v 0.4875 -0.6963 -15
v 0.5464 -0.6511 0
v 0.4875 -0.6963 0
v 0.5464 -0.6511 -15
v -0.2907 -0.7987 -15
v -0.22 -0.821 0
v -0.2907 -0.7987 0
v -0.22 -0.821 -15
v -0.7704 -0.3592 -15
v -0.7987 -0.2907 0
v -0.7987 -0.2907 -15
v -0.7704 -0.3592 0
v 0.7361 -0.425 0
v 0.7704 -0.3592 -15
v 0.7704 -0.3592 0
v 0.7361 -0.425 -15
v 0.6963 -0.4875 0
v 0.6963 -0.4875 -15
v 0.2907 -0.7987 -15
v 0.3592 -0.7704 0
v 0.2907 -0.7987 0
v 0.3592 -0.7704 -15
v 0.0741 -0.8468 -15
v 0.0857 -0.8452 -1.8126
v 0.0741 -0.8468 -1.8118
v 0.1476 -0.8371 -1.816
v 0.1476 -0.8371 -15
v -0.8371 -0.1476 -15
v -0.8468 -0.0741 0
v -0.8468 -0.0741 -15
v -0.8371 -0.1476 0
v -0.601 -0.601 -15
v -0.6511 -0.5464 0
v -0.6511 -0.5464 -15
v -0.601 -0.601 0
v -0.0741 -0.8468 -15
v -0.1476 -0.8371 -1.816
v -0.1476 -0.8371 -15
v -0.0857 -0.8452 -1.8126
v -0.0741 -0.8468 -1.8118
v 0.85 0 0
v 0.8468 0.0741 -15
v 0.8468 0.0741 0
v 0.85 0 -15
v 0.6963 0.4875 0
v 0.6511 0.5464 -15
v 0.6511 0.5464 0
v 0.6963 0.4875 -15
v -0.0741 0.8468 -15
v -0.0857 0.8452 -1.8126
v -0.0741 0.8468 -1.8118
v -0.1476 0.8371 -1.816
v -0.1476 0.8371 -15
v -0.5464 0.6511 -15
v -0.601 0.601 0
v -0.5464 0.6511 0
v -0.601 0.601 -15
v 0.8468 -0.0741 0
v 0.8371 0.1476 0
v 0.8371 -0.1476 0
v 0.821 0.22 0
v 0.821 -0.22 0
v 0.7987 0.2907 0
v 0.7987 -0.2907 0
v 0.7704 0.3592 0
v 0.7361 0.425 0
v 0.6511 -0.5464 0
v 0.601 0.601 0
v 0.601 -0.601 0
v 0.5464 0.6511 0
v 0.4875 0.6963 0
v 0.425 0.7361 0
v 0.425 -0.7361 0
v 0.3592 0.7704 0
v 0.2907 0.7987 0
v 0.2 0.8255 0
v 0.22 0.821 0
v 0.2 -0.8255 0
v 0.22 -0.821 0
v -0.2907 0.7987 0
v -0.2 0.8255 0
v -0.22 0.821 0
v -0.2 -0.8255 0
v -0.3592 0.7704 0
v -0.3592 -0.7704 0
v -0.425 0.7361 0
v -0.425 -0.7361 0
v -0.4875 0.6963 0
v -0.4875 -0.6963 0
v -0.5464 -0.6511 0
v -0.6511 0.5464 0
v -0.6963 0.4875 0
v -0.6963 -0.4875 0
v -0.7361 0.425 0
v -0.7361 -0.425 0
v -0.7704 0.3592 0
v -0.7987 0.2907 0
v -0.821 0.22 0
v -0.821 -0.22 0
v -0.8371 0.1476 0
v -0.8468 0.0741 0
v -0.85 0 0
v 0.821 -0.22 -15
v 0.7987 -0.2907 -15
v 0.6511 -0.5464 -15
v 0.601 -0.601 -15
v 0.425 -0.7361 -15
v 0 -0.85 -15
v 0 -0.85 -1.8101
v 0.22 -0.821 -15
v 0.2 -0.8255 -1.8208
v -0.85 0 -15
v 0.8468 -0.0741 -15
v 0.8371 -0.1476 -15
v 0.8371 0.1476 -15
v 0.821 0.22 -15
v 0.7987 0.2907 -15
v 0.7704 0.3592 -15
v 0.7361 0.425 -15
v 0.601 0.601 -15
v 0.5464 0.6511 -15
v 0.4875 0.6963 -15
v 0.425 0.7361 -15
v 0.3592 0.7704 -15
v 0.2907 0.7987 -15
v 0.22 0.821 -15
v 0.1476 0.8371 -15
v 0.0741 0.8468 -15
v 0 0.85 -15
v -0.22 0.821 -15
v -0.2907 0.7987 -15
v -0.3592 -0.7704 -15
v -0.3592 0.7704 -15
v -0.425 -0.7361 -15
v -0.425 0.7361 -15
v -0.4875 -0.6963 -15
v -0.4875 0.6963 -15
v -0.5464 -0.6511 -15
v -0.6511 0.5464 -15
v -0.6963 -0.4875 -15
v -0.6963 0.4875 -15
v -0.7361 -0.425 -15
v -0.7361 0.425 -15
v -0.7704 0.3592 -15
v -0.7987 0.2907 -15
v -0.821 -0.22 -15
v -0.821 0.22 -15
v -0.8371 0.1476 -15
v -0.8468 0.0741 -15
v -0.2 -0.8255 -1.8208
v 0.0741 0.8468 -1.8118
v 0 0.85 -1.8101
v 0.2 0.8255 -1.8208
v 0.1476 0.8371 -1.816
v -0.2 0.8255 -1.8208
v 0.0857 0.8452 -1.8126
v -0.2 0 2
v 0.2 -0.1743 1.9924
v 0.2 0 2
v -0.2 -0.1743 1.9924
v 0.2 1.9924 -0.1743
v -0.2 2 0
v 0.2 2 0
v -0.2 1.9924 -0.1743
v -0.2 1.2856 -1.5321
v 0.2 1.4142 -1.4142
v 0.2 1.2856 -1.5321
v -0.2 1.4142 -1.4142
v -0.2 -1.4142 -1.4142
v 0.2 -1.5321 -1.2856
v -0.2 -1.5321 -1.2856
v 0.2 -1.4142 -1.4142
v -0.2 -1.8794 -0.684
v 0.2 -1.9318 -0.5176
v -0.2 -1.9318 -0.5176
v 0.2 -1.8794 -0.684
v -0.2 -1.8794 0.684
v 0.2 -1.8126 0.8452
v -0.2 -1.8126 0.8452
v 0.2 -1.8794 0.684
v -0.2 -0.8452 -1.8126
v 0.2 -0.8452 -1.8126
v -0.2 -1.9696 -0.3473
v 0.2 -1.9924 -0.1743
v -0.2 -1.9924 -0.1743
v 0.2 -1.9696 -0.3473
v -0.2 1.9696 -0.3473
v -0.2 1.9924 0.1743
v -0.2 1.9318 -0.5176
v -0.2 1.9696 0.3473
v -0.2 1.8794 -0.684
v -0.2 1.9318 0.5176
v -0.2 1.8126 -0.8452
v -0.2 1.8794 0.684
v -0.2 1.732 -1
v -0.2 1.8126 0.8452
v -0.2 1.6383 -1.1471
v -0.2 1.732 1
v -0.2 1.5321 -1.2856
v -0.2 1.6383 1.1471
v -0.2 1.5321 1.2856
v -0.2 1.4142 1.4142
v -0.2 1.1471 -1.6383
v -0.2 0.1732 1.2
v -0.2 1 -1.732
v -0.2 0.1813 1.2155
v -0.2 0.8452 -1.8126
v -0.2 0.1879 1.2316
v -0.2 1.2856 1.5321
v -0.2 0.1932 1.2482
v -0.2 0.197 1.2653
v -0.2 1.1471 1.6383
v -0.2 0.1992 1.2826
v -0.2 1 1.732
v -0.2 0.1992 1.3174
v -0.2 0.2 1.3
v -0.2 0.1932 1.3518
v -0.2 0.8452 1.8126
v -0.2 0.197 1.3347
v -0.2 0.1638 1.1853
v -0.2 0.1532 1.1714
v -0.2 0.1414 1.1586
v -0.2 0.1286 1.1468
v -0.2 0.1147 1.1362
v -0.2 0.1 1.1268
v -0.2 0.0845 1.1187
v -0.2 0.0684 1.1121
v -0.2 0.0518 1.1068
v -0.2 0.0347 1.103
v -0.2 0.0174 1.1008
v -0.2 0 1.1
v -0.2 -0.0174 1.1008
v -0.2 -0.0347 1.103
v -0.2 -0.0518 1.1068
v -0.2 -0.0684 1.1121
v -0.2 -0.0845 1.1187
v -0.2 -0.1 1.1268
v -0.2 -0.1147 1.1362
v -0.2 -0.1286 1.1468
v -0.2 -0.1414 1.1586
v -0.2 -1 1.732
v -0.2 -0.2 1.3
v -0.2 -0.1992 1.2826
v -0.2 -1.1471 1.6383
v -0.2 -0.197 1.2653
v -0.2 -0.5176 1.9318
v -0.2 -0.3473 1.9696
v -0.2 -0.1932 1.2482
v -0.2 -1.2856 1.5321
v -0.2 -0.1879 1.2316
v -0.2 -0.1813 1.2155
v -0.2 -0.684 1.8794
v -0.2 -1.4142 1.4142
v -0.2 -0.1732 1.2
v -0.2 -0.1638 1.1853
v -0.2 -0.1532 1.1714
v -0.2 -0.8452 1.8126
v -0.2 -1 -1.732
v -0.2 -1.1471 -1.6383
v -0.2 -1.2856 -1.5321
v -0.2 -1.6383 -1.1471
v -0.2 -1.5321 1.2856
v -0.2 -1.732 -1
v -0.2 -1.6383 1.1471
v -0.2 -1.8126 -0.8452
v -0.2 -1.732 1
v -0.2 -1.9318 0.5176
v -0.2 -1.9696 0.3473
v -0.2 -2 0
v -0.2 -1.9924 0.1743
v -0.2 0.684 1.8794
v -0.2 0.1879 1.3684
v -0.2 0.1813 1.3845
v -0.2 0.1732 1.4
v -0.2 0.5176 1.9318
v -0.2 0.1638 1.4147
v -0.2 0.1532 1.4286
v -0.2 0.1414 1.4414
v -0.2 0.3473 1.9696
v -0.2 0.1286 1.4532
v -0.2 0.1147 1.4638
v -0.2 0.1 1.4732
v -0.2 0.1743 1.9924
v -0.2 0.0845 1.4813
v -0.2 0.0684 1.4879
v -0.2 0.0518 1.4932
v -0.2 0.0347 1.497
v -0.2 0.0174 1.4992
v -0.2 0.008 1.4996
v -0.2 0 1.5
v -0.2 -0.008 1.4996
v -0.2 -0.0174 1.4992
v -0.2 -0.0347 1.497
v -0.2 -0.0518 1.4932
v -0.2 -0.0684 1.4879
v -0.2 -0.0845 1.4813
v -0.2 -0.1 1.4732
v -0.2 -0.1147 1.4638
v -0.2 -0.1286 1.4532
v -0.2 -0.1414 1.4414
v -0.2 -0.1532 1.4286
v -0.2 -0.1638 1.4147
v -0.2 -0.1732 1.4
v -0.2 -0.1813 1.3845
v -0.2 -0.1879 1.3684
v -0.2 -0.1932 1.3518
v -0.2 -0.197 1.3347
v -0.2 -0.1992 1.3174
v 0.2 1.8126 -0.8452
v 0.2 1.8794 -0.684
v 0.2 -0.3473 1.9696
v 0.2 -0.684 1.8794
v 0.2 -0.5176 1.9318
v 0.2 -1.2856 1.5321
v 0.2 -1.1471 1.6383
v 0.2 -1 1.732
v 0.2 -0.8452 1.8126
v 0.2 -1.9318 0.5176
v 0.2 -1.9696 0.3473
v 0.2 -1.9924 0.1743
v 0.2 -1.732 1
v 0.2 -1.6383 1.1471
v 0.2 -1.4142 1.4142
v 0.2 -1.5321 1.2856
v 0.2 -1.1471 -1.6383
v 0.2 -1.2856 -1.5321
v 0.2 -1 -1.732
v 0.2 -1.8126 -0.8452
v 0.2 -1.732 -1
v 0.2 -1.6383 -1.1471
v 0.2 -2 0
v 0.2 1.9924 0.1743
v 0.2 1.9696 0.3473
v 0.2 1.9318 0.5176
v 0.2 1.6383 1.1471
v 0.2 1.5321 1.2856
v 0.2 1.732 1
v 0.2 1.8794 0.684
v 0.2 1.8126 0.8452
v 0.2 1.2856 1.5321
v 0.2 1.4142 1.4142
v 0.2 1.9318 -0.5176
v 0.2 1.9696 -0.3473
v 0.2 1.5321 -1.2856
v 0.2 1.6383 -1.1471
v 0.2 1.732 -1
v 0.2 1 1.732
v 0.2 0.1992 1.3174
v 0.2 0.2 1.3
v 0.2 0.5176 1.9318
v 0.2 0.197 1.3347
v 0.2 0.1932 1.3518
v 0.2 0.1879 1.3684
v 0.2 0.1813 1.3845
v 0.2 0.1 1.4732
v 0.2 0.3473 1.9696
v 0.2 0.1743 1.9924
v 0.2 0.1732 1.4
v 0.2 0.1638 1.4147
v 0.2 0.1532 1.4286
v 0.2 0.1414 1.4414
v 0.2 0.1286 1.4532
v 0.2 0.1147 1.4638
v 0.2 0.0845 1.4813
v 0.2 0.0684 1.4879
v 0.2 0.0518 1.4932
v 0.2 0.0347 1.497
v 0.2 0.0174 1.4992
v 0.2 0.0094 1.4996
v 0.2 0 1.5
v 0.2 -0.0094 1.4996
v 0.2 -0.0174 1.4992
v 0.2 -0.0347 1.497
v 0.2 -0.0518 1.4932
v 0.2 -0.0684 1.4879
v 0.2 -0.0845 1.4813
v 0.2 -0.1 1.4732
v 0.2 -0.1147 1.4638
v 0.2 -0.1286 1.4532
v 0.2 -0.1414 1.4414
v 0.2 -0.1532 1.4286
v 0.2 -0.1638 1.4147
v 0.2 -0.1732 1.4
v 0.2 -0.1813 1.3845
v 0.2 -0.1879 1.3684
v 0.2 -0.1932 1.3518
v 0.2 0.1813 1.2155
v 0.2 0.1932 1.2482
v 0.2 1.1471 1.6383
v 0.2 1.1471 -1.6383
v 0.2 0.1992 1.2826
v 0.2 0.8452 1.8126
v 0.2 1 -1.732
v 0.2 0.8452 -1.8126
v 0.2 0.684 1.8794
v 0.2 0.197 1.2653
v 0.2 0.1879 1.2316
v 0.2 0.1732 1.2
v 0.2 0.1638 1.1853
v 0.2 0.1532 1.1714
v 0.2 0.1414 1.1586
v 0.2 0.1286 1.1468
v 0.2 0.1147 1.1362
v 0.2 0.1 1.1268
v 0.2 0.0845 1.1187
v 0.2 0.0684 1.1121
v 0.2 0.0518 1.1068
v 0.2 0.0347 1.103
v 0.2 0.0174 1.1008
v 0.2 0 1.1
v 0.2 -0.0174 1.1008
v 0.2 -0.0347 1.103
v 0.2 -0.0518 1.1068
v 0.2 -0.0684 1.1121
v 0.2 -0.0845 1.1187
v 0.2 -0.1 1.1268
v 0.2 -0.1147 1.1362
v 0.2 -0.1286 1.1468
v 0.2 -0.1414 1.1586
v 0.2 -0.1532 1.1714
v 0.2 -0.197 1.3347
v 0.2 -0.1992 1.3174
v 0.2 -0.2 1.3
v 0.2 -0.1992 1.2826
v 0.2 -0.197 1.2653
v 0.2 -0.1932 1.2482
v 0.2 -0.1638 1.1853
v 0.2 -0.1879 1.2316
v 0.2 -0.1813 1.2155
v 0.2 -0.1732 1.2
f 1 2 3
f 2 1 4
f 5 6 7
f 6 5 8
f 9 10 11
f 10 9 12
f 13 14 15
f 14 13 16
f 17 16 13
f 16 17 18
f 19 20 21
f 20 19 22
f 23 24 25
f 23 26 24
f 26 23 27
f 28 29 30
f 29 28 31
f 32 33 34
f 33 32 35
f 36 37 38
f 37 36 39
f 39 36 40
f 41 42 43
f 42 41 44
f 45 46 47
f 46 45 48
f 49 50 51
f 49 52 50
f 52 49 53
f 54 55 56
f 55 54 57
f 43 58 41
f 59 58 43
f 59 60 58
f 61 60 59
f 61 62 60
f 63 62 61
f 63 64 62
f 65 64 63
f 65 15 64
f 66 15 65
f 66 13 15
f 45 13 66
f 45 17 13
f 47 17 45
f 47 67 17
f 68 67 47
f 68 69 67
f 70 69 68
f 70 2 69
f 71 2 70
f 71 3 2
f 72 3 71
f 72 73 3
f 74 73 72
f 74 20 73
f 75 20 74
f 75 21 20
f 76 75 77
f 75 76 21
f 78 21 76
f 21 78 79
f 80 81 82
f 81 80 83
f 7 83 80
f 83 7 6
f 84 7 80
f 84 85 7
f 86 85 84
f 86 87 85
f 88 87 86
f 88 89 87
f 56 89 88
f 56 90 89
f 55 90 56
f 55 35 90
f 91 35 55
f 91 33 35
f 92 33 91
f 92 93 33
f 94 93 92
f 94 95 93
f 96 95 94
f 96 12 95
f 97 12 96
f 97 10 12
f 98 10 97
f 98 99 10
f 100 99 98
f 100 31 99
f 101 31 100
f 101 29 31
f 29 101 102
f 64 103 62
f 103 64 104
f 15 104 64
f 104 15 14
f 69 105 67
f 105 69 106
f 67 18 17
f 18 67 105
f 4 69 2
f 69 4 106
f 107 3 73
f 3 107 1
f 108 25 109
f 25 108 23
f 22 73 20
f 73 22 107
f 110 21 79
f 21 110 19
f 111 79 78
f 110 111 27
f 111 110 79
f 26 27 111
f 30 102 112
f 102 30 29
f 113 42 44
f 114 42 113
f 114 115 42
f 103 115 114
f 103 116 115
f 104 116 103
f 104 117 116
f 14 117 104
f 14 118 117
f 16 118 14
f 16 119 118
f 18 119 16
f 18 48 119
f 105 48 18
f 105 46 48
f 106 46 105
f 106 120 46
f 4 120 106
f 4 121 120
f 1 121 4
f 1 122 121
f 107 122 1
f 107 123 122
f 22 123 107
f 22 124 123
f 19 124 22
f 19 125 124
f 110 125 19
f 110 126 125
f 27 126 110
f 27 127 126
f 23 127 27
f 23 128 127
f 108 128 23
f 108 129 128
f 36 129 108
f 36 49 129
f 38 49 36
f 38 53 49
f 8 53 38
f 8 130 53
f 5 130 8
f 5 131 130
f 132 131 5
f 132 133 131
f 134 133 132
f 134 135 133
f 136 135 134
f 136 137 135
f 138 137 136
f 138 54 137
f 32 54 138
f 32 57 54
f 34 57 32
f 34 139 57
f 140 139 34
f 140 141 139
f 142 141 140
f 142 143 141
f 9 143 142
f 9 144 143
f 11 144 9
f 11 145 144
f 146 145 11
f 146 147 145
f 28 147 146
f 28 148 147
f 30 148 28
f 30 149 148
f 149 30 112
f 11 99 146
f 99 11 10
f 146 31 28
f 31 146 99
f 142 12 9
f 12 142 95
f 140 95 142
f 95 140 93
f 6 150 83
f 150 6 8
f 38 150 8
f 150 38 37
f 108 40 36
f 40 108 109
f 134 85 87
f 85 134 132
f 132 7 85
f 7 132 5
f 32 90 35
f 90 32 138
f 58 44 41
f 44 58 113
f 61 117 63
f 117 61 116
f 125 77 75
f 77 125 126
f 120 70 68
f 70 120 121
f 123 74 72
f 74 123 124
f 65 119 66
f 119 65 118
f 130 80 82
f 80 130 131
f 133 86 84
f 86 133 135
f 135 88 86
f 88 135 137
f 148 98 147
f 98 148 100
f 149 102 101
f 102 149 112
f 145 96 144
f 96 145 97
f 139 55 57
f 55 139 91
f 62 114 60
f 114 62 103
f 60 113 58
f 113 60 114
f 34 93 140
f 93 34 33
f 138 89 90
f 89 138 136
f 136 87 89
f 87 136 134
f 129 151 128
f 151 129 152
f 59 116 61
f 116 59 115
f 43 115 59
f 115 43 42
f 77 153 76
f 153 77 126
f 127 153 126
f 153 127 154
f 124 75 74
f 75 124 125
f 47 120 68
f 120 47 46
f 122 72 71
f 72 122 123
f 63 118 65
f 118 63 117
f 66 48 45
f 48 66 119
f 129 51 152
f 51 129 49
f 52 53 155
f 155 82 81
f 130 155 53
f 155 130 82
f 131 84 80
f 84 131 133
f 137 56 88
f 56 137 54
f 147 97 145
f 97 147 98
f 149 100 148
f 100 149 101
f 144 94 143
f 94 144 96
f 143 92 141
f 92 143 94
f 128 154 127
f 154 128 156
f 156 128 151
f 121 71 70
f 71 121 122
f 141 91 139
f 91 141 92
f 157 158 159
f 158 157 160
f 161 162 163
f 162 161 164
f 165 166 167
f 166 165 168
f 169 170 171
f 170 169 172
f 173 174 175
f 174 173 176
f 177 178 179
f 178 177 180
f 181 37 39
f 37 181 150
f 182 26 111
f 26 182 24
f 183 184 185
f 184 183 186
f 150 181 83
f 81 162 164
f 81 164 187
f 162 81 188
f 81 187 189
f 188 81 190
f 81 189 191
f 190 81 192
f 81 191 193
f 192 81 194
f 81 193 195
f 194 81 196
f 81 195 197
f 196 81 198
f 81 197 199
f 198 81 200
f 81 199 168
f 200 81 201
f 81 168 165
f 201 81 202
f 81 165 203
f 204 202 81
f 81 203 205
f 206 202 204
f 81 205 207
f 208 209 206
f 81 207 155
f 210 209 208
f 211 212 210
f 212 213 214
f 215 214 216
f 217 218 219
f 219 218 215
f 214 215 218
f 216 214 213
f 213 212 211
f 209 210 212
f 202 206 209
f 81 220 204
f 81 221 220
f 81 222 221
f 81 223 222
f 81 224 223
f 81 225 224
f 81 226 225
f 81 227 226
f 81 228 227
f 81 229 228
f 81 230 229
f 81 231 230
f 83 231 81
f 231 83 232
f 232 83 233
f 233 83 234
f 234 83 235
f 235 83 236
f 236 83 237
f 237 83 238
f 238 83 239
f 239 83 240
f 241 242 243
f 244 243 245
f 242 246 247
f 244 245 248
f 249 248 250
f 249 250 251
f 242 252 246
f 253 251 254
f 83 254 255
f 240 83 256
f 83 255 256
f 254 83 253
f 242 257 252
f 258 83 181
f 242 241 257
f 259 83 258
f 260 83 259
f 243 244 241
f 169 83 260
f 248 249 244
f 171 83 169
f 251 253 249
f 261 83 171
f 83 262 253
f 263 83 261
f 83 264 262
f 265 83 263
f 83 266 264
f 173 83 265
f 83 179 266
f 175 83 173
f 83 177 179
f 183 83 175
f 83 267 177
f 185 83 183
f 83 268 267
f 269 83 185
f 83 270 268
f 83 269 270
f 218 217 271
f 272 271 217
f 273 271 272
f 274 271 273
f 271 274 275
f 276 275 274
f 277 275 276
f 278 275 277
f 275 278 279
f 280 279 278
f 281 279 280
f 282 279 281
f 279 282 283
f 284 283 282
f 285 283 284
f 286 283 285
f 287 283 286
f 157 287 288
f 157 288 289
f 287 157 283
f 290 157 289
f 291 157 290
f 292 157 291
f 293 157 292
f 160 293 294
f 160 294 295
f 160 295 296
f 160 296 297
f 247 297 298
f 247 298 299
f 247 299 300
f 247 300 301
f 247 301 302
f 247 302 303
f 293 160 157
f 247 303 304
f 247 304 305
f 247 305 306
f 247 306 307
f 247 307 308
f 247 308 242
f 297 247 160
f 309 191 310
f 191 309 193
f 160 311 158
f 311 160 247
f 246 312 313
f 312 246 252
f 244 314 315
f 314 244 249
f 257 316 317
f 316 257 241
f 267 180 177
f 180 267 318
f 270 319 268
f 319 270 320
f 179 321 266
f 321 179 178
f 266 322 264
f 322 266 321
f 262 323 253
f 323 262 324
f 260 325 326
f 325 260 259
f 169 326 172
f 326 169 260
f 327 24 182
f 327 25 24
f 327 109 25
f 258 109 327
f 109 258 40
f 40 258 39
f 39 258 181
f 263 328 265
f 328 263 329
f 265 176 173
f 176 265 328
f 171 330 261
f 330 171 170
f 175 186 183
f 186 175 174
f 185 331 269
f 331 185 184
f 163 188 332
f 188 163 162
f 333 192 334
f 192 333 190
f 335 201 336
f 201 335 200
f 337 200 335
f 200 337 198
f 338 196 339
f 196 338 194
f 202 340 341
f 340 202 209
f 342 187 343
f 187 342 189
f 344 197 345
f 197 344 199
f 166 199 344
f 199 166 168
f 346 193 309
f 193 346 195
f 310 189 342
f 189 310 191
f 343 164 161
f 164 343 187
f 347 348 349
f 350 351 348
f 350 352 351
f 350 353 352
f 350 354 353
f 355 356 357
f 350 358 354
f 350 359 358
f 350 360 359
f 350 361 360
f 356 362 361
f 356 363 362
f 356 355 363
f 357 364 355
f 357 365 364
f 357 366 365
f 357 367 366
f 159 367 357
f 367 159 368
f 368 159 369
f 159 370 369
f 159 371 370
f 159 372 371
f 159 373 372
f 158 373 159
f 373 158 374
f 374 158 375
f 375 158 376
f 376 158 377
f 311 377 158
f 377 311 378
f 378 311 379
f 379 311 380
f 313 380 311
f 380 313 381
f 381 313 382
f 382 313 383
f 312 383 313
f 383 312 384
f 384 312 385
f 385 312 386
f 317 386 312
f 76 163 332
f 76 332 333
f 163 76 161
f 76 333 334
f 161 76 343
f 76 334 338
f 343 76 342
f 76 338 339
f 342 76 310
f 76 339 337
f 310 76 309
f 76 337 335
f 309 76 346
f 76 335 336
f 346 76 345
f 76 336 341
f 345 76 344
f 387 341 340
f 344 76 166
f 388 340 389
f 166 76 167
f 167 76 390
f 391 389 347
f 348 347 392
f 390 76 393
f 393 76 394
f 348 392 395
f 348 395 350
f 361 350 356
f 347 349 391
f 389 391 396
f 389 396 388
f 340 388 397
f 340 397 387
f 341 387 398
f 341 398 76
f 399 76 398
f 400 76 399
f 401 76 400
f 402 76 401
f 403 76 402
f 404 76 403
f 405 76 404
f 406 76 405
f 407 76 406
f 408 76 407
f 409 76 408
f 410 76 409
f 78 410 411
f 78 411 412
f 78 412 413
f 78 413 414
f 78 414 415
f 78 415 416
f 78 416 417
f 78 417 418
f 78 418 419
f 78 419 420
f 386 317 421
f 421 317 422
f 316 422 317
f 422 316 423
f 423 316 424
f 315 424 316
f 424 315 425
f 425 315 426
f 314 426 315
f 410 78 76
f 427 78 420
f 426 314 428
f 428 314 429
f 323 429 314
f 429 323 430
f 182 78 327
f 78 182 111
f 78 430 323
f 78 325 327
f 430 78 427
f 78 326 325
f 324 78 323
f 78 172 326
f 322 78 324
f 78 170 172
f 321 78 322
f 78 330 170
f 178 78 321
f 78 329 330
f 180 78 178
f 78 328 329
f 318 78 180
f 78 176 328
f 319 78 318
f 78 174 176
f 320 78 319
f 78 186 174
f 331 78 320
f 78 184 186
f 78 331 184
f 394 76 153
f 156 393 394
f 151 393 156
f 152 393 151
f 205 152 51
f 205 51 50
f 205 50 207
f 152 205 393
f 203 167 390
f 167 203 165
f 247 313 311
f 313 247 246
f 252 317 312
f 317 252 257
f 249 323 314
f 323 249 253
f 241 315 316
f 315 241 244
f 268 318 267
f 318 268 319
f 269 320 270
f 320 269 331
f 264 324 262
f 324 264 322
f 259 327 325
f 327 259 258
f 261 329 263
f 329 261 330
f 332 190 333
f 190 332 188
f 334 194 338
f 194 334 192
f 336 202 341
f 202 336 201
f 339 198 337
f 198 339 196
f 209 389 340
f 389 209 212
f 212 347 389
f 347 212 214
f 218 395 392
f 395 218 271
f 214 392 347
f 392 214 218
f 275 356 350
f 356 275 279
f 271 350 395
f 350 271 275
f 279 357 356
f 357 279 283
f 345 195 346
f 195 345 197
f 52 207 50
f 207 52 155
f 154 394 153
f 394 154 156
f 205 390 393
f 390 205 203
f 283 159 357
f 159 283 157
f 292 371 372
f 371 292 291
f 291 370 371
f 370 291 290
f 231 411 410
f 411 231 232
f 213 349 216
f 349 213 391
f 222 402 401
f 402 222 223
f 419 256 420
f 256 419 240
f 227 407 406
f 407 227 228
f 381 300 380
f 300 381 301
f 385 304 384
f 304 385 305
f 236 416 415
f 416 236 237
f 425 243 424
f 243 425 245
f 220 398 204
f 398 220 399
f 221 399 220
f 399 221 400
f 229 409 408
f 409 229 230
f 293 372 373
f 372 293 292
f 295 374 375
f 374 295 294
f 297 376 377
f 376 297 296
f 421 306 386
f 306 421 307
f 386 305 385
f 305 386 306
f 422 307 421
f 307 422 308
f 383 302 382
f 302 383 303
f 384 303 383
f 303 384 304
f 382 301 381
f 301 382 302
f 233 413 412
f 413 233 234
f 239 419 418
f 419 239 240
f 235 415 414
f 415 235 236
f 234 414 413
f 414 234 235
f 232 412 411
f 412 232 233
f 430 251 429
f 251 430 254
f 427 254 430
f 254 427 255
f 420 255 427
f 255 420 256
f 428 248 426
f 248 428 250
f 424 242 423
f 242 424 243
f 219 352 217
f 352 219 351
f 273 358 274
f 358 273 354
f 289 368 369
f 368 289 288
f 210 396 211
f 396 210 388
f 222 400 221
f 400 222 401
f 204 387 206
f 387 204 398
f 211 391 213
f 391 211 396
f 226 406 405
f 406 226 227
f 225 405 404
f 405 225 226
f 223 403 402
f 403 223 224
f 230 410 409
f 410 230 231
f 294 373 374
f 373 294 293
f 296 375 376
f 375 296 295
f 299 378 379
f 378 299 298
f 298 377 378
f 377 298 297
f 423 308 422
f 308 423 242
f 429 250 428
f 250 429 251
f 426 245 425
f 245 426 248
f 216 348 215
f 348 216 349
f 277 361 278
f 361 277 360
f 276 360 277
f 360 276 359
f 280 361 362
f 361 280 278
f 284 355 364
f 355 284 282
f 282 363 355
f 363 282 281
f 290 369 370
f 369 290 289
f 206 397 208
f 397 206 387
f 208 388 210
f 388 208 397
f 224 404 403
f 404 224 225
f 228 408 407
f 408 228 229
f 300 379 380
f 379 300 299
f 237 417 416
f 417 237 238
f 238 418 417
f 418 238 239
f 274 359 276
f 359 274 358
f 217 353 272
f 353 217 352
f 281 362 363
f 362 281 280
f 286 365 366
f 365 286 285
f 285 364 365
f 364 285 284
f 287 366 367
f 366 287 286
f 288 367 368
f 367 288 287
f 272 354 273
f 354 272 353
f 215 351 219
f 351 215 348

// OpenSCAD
diam=.85;
/*
difference() {
    cylinder(h=15,r=diam,$fn=72);
    
    union(){
        rotate([0,90,0]) cylinder(h=0.4, r=2,$fn=72, center=true);
        translate([0,0,1]) rotate([0,90,0]) cylinder(h=5, r=0.2,$fn=72, center=true);
    }
}
*/
translate([0,0,0]) rotate([180,0,0])
difference(){
union() {
    difference(){
        cylinder(h=15,r=diam,$fn=72);
        //cube([2,2,2], center=true);
    }
    rotate([0,90,0]) cylinder(h=0.4, r=2,$fn=72, center=true);
}
union(){
    translate([0,0,-1.3]) rotate([0,90,0]) cylinder(h=5, r=0.2,$fn=72, center=true);
    
}
}
